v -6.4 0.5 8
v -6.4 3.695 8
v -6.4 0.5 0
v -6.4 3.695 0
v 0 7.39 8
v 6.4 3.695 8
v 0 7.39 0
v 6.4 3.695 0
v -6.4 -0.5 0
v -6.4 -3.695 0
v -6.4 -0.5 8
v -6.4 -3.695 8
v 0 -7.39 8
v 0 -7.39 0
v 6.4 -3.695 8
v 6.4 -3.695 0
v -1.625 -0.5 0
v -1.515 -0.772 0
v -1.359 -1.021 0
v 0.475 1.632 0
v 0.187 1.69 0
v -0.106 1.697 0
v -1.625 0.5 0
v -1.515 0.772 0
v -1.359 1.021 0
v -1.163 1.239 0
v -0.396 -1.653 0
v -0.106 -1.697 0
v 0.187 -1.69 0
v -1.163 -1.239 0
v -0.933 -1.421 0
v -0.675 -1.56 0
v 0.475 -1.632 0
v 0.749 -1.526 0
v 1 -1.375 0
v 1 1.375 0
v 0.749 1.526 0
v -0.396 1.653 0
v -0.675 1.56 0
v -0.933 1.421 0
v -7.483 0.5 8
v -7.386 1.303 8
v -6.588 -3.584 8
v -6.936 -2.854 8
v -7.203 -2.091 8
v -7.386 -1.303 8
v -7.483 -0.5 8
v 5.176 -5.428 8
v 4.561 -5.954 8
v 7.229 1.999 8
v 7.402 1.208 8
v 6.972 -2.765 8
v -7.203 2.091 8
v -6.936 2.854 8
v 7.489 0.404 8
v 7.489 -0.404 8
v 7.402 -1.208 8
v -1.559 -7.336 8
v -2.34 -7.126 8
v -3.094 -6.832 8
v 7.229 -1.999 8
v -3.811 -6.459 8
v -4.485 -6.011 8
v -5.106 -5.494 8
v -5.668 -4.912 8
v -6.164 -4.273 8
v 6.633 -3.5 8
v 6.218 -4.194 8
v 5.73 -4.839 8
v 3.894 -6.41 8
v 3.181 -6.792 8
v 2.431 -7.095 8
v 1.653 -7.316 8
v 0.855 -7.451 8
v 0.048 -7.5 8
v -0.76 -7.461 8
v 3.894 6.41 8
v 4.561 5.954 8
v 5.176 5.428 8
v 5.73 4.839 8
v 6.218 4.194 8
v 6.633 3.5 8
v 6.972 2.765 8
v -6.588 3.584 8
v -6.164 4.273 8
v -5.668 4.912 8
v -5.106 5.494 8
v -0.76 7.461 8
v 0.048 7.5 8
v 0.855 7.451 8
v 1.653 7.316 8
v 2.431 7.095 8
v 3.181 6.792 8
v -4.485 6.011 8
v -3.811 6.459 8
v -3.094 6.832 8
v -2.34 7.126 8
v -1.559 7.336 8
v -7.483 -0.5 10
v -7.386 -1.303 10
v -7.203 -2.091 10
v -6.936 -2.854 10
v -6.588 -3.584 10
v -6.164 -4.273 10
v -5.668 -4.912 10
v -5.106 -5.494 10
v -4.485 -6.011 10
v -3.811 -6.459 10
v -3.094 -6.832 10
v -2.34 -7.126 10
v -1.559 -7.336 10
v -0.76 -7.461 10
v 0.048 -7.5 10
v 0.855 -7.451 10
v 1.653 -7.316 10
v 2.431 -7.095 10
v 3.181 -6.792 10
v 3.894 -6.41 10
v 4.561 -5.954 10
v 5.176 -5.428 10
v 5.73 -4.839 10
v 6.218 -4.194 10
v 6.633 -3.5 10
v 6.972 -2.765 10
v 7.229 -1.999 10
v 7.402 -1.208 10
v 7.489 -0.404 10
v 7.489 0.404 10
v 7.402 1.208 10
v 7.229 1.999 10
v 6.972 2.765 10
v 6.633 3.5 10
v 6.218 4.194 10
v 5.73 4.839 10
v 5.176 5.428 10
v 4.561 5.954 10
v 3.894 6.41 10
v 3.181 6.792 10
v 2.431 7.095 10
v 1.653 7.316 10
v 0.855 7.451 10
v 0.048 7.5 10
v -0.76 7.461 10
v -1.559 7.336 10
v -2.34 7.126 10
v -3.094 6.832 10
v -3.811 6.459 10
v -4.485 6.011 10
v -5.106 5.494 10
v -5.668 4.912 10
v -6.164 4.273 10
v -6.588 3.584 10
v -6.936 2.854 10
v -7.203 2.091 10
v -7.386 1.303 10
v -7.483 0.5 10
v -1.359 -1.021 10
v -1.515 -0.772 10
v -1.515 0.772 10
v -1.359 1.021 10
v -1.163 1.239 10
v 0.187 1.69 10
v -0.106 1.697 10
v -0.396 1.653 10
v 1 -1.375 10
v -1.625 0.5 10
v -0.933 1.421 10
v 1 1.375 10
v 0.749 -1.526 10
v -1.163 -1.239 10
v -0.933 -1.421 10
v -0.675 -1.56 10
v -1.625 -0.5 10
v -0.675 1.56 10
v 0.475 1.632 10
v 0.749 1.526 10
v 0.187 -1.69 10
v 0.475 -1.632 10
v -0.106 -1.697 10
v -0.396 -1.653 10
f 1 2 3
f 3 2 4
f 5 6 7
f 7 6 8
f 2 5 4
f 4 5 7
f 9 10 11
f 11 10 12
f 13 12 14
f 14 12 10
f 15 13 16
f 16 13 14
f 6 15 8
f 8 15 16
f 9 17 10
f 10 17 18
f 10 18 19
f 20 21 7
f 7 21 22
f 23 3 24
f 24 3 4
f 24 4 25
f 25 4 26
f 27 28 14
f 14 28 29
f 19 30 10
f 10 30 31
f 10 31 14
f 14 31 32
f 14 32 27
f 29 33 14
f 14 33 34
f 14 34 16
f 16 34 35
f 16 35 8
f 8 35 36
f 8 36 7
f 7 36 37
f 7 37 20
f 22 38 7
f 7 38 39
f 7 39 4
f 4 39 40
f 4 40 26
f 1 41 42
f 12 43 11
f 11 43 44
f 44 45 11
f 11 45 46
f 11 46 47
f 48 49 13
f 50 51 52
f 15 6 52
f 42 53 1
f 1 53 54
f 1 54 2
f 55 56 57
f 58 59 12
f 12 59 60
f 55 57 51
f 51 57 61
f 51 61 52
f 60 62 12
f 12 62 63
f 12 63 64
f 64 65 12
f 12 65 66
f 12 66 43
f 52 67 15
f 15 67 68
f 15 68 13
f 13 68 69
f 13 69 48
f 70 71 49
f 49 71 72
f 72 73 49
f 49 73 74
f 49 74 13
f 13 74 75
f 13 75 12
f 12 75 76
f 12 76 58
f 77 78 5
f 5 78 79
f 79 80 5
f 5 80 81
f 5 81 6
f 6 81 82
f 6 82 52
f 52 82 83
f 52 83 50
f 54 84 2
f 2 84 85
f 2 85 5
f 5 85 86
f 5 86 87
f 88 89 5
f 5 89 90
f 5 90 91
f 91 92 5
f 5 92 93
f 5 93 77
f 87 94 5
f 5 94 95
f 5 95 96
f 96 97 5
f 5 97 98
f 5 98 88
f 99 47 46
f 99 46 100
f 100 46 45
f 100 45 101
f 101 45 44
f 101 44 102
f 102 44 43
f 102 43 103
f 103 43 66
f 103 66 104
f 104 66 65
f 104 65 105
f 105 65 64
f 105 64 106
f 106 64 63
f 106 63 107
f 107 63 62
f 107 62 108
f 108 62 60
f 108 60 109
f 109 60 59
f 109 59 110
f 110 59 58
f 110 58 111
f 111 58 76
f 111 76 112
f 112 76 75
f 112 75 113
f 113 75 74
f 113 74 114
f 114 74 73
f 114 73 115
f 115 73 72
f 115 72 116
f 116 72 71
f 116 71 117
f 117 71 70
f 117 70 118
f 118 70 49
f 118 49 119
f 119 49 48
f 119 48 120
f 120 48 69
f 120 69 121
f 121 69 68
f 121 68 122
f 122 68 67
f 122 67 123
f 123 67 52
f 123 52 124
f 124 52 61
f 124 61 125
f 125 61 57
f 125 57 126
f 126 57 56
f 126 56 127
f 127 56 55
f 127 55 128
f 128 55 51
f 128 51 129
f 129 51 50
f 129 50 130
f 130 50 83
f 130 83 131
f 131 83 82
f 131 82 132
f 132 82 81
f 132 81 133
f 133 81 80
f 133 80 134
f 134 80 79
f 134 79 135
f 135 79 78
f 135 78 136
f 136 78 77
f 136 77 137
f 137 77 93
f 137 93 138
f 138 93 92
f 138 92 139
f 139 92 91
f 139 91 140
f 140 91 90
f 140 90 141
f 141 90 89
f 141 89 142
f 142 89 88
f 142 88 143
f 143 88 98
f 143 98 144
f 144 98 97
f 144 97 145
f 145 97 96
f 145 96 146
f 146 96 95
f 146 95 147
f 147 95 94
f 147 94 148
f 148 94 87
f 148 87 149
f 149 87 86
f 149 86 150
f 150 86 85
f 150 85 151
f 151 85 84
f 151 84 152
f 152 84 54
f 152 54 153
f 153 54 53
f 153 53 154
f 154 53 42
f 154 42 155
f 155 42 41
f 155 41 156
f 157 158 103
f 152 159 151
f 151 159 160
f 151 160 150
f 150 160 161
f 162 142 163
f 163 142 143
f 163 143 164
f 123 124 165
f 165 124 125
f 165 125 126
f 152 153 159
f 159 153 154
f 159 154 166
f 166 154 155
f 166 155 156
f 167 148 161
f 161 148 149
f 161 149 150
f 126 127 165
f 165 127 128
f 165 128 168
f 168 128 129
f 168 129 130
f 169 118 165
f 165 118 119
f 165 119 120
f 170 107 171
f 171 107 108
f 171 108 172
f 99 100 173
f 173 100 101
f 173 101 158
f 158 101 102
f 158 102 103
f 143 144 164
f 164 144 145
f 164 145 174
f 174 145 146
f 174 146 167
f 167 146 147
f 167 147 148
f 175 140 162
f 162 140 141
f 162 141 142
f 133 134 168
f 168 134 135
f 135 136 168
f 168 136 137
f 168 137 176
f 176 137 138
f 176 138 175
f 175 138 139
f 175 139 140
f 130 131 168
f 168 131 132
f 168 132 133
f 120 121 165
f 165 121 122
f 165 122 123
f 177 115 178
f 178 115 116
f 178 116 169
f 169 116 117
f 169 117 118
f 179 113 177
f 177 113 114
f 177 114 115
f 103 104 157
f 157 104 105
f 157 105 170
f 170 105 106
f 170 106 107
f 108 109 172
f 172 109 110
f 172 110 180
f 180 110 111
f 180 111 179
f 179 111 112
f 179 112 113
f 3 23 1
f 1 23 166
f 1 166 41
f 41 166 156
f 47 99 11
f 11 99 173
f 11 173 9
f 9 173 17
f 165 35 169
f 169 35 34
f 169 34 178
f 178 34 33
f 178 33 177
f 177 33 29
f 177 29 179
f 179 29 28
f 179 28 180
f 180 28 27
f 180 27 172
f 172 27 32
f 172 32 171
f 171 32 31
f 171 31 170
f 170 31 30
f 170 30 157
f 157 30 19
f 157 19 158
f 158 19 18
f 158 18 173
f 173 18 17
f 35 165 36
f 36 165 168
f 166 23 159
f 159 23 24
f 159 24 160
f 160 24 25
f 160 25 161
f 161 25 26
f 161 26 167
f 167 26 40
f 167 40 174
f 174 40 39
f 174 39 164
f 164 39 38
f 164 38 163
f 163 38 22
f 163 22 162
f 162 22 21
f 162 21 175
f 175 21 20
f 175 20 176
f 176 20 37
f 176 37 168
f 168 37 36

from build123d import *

# Parameters (mm, degrees)
BOSS_EXTRU_1_DEPTH      = 8
ESQUISSE2_R             = 7.5
BOSS_EXTRU_2_DEPTH      = 2
ENL_V_MAT_EXTRU_1_REACH = 16.577


with BuildPart() as part:
    # Esquisse1 → Boss.-Extru.1 (new body)
    with BuildSketch(Plane.XY):
        Polygon((0, 7.390083446), (-6.4, 3.695041723), (-6.4, -3.695041723), (0, -7.390083446), (6.4, -3.695041723), (6.4, 3.695041723), align=None)
    extrude(amount=BOSS_EXTRU_1_DEPTH)

    # Esquisse2 → Boss.-Extru.2 (add)
    with BuildSketch(Plane.XY.offset(8)):
        Circle(ESQUISSE2_R)
    extrude(amount=BOSS_EXTRU_2_DEPTH)

    # Esquisse3 → Enlèv. mat.-Extru.1 (cut, up to next)
    with BuildSketch(Plane(origin=(0, 0, 0), x_dir=(-1, 0, 0), z_dir=(0, 0, -1)), mode=Mode.PRIVATE) as enl_v_mat_extru_1_sk1:
        with BuildLine():
            Line((-1, 1.374772708), (-1, -1.374772708))
            ThreePointArc((-1, -1.374772708), (0.53749696, -1.612791684), (1.624807681, -0.5))
            Line((1.624807681, -0.5), (8.490964129, -0.5))
            Line((8.490964129, -0.5), (8.490964129, 0.5))
            Line((8.490964129, 0.5), (1.624807681, 0.5))
            ThreePointArc((1.624807681, 0.5), (0.53749696, 1.612791684), (-1, 1.374772708))
        make_face()
    enl_v_mat_extru_1_tool1 = extrude(enl_v_mat_extru_1_sk1.sketch, amount=-ENL_V_MAT_EXTRU_1_REACH, mode=Mode.PRIVATE) & part.part
    add(enl_v_mat_extru_1_tool1.solids().sort_by_distance((-2.500554, 0, 0))[0], mode=Mode.SUBTRACT)


solid = part.part
